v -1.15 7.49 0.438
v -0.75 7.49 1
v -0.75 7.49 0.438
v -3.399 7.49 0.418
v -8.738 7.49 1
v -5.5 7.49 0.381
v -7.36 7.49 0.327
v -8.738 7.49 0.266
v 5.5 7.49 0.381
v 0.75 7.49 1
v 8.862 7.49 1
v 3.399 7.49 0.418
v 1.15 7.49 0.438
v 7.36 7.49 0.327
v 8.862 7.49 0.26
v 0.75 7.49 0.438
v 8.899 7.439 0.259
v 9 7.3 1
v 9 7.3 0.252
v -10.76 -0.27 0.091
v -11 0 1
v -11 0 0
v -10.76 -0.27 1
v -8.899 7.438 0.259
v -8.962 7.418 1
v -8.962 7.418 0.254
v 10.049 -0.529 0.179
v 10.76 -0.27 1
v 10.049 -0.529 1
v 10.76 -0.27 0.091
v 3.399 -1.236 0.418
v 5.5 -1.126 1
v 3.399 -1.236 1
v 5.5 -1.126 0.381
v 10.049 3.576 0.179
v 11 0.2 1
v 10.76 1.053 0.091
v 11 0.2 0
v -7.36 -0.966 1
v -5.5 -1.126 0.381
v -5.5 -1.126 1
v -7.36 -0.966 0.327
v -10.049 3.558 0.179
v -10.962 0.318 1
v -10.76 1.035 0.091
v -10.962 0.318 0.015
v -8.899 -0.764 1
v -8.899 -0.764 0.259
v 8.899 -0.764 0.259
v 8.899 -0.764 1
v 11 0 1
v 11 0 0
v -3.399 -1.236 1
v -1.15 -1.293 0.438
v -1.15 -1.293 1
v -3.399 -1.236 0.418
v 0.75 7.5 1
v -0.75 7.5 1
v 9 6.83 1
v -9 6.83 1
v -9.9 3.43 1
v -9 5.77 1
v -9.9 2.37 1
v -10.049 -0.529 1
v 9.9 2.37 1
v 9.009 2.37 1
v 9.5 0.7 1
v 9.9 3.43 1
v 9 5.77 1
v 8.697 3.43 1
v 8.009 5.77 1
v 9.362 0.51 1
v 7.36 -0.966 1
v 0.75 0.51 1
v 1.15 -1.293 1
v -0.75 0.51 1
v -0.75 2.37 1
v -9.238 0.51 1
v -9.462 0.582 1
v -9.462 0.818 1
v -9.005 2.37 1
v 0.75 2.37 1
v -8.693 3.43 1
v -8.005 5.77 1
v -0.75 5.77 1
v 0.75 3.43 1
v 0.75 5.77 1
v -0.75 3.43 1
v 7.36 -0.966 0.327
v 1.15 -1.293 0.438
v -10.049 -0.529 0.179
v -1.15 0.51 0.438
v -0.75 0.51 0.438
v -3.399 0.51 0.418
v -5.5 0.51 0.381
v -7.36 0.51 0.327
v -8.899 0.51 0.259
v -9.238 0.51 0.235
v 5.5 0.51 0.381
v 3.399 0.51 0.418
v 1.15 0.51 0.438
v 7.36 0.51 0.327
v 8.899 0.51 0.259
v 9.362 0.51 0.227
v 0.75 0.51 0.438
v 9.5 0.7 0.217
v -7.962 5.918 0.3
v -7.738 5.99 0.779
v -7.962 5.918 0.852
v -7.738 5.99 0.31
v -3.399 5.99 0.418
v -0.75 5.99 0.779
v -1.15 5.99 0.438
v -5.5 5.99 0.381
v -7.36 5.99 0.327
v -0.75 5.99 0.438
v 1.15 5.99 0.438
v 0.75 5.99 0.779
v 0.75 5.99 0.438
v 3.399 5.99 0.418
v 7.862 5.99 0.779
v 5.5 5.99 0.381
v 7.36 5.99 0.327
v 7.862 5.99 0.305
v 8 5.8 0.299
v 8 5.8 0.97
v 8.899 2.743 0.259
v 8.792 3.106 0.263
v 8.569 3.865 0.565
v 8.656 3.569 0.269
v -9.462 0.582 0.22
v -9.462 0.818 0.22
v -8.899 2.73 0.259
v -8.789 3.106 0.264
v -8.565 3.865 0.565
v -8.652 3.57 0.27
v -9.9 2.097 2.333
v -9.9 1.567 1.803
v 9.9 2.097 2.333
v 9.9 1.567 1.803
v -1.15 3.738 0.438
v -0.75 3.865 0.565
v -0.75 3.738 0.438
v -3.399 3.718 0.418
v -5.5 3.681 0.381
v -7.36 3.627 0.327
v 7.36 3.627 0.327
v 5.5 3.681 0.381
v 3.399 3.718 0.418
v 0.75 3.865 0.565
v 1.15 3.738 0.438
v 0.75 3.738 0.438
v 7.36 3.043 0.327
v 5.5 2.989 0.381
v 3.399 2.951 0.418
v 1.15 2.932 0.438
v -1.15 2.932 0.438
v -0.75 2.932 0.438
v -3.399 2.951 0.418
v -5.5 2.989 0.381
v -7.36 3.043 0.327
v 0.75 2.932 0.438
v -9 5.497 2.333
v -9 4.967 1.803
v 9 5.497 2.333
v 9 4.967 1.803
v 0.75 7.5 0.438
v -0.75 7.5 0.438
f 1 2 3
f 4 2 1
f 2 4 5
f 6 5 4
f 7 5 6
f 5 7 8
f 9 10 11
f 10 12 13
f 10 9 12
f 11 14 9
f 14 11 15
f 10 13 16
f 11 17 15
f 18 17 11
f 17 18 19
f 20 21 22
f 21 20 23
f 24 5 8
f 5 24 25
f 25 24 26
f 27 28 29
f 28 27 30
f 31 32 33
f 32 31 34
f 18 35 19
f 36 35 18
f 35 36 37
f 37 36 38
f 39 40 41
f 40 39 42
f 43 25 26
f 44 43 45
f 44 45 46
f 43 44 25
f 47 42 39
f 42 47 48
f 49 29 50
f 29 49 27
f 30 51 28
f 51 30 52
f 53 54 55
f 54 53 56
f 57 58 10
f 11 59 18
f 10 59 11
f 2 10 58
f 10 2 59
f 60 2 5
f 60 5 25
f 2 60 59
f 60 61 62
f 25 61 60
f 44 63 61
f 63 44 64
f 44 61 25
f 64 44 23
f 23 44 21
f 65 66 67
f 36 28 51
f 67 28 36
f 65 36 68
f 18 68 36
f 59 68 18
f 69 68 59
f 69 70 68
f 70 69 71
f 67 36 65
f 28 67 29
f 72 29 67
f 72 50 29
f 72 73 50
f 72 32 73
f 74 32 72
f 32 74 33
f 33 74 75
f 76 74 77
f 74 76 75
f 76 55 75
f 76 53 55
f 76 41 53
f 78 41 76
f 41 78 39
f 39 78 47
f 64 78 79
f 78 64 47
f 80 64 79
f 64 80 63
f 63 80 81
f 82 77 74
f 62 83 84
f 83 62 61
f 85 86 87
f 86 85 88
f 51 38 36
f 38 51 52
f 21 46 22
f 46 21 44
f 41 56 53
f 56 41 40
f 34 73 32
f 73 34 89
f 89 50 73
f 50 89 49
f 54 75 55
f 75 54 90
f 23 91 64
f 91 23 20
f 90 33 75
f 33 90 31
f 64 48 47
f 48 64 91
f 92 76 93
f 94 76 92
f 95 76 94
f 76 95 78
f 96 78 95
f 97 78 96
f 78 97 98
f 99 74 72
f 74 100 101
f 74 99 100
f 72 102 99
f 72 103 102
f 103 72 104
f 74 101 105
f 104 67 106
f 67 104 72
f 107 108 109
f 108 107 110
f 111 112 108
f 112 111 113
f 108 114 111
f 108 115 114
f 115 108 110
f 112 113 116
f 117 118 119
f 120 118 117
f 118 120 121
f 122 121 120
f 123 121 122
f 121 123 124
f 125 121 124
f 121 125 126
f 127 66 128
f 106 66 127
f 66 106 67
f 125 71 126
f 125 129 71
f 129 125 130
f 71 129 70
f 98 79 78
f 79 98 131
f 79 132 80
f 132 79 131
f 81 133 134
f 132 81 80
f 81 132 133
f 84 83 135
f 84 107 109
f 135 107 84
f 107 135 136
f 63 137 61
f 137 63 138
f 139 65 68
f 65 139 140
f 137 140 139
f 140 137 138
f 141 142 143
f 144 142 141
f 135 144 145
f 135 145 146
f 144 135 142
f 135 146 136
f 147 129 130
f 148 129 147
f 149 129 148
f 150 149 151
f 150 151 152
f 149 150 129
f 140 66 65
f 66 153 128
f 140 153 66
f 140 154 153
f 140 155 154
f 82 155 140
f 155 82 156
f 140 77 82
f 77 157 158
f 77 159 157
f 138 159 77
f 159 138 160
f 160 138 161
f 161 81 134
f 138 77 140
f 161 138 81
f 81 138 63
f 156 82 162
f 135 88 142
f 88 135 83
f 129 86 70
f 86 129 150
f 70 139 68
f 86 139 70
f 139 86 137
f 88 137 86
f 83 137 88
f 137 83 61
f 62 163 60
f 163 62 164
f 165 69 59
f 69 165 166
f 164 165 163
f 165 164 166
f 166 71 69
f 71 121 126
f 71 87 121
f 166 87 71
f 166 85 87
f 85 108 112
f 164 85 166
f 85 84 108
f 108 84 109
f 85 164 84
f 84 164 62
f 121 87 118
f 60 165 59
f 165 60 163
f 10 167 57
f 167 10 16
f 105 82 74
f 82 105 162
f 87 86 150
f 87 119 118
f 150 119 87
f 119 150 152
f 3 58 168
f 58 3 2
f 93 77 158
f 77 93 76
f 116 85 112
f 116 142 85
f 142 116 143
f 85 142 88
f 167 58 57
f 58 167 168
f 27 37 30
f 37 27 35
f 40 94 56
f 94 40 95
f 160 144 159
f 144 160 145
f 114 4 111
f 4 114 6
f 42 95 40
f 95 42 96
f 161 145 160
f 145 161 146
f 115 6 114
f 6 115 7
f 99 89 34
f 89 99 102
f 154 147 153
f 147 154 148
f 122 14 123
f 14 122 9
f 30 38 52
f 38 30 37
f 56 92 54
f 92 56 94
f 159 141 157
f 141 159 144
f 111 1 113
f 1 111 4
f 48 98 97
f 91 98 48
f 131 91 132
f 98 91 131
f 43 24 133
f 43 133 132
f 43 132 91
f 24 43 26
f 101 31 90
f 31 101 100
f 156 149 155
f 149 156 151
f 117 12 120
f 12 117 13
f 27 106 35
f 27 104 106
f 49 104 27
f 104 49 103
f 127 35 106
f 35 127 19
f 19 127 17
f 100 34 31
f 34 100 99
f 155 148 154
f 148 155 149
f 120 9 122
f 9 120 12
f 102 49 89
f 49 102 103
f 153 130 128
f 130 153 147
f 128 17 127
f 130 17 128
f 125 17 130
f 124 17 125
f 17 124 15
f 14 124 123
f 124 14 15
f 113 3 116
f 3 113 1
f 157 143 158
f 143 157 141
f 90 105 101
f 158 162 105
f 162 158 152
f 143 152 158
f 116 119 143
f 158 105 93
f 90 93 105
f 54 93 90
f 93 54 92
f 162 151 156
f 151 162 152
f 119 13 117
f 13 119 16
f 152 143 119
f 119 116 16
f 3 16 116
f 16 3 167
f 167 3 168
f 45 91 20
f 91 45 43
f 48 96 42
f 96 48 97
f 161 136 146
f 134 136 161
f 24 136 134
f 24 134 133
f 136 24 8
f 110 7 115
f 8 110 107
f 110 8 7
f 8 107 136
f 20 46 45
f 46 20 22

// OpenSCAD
rad = 0.2;
pt1 = [-11+rad,0+rad,0];
pt2 = [-9+rad,7.5-rad,0];
pt3 = [9-rad,7.5-rad,0];
pt4 = [11-rad,0+rad,0];

ipt1 = [-11+rad+1.5,0+rad+0.5,-0.1];
ipt2 = [-9+rad+1,7.5-rad-1.5,-0.1];
ipt3 = [9-rad-1,7.5-rad-1.5,-0.1];
ipt4 = [11-rad-1.5,0+rad+0.5,-0.1];

difference() {
   flatForm();
   scale([1,1,.04]) translate([0,-2.2,0]) rotate([-90,0,0]) cylinder($fn=30,r=11,h=12);
}



module flatForm() {
   difference() {
      hull() {
         translate(pt1) cylinder(r=rad,h=1);
         translate(pt2) cylinder(r=rad,h=1);
         translate(pt3) cylinder(r=rad,h=1);
         translate(pt4) cylinder(r=rad,h=1);
         scale([1,1/11*1.3,1]) cylinder($fn=30,r=11,h=1);
      }
   
      hull() {
         translate(ipt1) cylinder(r=rad,h=1.7);
         translate(ipt2) cylinder(r=rad,h=1.7);
         translate(ipt3) cylinder(r=rad,h=1.7);
         translate(ipt4) cylinder(r=rad,h=1.7);
      }
   }

   translate([-.75,0,0]) cube([1.5,7.5,1]);
   
   translate([0,0,0.3]) difference() {
      union() {
         translate([0,3.6,0]) rotate([45,0,0]) translate([0,0,1.25]) cube([19.8,0.75,2.5],center=true);
         translate([0,7,0]) rotate([45,0,0]) translate([0,0,1.25]) cube([18.0,0.75,2.5],center=true);
      }
   //   translate([0,0,-1.5]) cube([40,40,3],center=true);
   }
}
